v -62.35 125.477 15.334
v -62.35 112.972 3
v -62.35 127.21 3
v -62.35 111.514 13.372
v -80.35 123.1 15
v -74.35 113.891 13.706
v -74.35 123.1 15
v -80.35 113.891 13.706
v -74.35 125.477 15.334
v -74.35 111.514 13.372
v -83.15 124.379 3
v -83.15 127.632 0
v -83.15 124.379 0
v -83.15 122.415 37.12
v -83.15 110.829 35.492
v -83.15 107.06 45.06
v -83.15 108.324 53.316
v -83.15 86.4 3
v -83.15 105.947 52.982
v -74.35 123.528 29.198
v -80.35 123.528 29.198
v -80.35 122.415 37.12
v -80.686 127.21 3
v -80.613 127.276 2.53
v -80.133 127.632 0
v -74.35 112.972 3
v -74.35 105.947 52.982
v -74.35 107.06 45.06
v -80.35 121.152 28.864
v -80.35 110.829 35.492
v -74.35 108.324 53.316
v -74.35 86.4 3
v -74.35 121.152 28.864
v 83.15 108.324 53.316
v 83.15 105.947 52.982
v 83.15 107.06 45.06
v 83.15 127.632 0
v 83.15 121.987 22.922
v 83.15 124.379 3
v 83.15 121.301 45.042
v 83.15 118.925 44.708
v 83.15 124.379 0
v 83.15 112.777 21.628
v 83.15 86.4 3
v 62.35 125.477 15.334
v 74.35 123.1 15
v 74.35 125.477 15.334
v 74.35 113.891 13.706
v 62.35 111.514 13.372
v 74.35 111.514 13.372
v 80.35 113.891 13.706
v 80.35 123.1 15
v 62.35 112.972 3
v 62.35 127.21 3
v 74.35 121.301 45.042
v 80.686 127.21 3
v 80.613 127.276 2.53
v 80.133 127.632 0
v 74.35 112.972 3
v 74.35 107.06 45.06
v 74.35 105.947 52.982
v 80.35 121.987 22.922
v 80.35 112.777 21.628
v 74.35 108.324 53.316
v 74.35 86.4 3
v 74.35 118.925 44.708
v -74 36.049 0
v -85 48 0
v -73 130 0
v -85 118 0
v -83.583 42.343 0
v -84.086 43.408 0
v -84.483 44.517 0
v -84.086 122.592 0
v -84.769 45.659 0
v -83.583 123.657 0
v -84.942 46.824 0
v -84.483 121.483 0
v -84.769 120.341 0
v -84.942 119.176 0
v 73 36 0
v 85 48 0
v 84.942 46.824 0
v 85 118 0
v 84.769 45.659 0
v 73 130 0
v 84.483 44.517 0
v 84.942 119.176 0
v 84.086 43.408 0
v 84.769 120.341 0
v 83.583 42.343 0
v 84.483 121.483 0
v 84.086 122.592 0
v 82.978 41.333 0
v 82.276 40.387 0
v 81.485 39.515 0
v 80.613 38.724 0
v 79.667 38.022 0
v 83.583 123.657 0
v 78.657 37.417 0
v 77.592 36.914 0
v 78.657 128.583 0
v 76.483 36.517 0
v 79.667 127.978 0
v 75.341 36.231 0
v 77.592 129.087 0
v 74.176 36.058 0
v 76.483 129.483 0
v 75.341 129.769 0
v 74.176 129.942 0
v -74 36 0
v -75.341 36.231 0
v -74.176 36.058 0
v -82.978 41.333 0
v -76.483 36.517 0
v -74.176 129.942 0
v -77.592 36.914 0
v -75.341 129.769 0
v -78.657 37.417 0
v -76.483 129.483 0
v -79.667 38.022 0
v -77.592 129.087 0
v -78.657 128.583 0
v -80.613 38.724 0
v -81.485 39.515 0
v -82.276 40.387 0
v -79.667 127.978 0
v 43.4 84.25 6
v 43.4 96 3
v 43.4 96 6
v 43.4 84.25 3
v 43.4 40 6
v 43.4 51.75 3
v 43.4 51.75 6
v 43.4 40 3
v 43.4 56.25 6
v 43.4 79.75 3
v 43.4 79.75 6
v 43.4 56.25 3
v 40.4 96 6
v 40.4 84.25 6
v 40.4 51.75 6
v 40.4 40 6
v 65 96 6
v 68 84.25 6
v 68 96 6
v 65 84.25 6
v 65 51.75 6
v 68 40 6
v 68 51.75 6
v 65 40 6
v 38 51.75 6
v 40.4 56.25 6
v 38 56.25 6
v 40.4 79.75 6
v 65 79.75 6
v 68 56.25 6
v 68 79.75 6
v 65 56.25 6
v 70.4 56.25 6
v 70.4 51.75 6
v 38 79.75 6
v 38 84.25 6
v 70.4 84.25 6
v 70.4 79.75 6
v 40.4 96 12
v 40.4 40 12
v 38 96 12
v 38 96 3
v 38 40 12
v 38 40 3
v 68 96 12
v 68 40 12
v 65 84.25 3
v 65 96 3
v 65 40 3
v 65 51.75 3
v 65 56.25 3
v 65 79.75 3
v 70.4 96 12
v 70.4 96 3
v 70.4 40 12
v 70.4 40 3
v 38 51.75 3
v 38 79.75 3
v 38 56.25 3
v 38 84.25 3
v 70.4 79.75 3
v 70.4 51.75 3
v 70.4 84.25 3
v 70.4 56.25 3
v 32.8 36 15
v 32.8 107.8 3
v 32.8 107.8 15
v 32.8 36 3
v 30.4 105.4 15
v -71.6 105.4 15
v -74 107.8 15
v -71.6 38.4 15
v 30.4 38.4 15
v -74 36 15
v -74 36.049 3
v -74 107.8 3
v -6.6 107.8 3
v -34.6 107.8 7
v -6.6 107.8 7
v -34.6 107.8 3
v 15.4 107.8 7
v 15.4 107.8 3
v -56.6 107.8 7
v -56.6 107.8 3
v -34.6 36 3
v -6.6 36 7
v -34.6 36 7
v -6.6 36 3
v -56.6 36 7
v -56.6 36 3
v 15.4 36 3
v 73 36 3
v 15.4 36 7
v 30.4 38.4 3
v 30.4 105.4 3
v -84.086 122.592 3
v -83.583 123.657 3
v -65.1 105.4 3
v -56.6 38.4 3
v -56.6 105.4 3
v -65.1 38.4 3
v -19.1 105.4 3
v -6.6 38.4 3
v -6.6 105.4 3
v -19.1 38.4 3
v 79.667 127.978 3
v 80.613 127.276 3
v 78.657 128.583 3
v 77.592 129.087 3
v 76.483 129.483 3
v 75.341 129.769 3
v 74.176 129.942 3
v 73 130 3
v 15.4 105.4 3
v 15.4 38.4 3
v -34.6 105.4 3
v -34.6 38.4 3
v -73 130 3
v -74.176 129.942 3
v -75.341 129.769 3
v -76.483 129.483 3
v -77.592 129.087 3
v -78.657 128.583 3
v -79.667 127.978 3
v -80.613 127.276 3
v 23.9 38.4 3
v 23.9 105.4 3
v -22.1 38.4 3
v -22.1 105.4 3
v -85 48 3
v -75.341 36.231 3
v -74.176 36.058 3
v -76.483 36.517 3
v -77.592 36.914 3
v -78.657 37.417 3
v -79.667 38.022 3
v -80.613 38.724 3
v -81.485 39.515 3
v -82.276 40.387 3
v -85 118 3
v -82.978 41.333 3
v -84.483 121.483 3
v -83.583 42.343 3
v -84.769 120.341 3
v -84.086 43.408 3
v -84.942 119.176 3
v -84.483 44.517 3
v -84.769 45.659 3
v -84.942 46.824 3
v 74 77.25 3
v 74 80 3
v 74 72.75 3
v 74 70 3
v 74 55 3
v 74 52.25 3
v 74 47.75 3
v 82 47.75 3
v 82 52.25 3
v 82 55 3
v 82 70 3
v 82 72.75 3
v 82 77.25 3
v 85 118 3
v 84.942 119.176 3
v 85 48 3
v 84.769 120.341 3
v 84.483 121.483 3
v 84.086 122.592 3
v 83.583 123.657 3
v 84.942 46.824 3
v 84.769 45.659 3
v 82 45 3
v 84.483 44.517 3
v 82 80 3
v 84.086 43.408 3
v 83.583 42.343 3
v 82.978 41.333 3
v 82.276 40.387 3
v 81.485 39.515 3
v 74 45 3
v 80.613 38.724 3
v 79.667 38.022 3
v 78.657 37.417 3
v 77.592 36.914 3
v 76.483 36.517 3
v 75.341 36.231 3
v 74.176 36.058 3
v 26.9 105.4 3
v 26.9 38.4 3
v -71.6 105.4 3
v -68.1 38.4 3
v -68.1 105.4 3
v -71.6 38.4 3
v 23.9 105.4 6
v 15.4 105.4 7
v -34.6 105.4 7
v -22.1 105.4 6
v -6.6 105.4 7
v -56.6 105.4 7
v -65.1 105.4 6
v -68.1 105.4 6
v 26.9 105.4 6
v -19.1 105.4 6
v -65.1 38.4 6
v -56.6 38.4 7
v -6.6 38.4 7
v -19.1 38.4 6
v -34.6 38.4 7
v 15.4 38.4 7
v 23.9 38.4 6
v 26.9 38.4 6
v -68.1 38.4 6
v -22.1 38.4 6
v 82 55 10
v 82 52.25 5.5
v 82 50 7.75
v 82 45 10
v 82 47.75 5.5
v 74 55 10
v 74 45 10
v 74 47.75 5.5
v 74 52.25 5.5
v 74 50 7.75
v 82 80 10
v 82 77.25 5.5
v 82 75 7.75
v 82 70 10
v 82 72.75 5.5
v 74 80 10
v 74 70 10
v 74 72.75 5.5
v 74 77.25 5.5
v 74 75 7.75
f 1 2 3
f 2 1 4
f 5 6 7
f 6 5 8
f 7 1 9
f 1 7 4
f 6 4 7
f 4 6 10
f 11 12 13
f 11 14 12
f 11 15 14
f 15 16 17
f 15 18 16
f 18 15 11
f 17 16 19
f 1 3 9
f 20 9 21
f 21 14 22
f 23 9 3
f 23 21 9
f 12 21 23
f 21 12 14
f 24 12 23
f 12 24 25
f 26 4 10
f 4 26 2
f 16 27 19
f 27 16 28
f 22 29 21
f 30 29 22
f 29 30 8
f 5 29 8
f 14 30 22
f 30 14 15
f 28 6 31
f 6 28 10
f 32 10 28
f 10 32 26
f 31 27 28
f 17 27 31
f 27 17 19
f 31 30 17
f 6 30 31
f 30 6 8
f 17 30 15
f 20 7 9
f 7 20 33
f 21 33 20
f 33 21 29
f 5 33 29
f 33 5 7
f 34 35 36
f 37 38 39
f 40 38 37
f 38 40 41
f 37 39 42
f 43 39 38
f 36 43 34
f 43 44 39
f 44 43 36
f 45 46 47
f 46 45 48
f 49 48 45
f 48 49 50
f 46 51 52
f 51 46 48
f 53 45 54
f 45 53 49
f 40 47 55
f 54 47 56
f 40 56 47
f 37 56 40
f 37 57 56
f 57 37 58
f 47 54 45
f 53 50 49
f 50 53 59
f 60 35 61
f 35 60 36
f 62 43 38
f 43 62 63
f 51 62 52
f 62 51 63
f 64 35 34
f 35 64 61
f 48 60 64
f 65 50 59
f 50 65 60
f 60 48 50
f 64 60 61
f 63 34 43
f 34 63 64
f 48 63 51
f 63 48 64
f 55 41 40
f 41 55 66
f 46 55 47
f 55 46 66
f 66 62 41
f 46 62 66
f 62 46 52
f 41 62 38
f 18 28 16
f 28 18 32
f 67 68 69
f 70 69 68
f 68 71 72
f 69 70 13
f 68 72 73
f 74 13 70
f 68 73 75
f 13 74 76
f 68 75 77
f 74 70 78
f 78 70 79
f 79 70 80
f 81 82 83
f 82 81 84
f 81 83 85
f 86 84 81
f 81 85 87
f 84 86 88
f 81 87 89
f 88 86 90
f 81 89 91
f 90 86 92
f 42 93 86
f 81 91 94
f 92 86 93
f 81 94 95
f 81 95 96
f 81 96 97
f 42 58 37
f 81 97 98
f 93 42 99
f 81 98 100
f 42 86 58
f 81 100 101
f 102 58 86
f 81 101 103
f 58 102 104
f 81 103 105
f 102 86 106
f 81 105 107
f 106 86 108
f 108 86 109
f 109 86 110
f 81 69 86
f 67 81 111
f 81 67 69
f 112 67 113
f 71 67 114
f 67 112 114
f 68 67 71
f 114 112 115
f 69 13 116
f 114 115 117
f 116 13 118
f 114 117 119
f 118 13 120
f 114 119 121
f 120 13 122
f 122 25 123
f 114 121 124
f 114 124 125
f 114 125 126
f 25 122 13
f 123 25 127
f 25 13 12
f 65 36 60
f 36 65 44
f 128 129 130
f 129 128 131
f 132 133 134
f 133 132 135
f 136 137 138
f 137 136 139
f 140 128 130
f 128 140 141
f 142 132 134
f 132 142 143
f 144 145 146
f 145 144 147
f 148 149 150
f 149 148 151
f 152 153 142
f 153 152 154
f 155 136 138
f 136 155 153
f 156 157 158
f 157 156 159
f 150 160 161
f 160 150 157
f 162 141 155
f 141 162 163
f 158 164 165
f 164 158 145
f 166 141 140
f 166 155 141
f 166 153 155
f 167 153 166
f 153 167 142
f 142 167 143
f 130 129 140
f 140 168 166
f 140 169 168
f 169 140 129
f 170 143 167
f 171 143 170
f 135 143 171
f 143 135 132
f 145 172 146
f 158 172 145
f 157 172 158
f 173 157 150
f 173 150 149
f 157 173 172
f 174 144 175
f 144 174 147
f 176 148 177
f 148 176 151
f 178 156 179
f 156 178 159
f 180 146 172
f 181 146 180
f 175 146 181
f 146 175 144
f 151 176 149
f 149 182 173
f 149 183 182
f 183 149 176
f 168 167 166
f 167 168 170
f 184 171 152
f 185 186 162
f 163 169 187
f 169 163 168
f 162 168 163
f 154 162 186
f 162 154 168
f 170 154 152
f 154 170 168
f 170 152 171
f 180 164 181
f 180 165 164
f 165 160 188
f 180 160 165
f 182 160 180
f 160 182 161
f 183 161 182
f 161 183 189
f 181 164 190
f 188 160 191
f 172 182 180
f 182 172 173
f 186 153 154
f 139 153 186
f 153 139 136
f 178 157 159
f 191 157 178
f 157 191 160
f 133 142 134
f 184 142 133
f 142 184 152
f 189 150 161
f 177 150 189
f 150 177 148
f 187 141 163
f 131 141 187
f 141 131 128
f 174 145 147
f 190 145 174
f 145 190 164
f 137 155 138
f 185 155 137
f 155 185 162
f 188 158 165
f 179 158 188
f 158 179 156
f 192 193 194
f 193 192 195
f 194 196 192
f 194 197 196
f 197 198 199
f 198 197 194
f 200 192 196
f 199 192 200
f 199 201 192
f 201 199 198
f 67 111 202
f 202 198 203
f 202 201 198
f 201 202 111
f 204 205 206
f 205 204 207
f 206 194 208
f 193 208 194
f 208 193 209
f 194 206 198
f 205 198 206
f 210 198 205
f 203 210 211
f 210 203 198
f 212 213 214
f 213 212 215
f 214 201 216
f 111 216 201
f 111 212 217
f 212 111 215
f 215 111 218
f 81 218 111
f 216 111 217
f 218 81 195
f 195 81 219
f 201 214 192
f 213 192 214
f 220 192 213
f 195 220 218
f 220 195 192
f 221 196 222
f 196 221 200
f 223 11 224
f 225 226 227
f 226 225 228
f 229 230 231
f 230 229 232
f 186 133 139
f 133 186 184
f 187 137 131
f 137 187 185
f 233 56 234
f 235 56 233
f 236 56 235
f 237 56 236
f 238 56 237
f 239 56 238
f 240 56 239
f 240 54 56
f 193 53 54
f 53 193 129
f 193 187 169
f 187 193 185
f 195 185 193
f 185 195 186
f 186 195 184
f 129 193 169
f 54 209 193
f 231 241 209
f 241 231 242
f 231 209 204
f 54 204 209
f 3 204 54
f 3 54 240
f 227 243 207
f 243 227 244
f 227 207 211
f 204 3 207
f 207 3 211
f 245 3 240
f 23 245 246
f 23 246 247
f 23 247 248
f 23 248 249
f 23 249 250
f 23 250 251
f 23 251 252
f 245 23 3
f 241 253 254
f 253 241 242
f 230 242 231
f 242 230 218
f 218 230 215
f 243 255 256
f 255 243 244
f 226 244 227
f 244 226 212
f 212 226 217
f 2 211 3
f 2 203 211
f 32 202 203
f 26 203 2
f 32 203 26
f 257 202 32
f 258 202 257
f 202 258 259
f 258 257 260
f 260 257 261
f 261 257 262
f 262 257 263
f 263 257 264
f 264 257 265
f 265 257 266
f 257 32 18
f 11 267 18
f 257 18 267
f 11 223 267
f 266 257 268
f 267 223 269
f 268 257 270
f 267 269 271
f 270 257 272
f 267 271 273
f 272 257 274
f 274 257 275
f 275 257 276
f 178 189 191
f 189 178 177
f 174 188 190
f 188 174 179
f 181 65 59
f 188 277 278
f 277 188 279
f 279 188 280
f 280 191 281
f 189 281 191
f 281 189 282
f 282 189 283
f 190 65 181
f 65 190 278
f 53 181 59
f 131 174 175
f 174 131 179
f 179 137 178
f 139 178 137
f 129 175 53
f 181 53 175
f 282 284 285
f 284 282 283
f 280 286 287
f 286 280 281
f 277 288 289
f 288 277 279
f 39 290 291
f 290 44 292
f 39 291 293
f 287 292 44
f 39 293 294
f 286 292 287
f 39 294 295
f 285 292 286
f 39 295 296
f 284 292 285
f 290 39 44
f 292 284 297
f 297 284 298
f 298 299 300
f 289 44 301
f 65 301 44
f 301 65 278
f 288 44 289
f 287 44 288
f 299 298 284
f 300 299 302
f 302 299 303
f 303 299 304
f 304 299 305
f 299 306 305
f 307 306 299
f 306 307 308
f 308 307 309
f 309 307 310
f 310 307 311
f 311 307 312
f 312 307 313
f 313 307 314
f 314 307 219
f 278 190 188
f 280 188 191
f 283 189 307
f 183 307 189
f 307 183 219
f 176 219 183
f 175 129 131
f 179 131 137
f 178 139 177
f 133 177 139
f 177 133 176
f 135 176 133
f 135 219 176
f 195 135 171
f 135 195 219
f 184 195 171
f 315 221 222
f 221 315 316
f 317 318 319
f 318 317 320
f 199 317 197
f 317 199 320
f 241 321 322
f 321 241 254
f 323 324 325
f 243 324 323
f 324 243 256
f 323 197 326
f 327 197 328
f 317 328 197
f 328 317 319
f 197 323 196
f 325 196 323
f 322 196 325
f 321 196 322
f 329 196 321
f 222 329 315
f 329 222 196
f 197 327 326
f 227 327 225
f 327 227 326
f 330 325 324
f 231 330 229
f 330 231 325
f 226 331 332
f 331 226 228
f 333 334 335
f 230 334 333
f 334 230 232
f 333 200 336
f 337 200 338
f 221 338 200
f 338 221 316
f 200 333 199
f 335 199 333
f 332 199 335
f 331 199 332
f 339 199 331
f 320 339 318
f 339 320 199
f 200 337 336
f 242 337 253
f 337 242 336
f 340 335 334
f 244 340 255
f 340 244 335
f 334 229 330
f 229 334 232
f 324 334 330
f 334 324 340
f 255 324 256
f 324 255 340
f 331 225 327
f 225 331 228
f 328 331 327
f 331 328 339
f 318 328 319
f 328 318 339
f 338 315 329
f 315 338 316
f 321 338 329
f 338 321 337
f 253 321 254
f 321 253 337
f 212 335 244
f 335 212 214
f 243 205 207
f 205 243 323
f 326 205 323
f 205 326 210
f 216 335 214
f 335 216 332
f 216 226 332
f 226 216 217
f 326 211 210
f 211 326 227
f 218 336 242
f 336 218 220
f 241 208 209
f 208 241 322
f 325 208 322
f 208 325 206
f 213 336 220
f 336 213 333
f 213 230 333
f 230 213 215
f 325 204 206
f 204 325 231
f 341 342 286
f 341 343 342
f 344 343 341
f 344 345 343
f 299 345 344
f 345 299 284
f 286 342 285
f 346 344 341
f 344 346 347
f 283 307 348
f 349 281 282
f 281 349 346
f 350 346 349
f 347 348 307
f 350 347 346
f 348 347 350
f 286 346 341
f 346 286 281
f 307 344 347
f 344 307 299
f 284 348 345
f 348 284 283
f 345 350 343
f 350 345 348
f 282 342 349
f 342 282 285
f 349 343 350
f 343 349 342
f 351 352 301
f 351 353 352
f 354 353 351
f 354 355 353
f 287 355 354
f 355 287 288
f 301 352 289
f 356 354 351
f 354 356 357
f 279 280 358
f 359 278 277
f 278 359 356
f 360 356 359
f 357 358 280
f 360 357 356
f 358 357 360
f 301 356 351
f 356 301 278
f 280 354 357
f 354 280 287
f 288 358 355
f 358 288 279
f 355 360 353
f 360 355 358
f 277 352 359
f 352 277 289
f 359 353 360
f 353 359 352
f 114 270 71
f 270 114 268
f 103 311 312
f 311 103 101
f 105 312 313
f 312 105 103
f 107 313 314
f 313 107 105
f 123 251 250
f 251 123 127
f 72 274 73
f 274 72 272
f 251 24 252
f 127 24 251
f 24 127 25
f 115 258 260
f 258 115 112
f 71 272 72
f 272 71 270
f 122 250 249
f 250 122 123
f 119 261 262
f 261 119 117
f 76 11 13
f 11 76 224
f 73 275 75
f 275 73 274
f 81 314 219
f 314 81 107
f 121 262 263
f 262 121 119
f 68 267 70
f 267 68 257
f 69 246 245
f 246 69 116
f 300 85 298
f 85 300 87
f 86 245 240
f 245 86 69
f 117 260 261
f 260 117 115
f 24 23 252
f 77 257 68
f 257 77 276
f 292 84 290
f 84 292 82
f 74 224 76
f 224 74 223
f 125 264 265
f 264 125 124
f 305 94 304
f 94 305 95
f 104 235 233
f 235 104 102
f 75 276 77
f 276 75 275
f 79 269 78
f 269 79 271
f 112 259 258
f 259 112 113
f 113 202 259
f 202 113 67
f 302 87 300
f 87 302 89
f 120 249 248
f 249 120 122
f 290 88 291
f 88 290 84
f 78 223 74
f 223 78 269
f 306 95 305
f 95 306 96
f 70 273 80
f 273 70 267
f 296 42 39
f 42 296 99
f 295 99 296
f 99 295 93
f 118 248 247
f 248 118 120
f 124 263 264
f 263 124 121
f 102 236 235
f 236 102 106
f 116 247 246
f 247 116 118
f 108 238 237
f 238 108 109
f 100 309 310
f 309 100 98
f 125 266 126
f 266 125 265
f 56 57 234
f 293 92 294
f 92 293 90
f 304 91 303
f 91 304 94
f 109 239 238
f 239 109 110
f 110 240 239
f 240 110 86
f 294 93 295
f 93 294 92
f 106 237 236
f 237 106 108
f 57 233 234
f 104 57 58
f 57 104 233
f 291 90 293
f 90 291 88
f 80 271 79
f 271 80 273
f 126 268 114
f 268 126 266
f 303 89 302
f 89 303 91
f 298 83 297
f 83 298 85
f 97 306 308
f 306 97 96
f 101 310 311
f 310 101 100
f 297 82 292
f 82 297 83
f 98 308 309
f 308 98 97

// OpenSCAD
// =====================================================================
//  Support "coque" pour Roomba 616 : téléphone Galaxy S8+ + carte FT232RL
//  (+ poche optionnelle pour batterie externe)
//
//  Pièce ADD-ON collée sur le dessus du Roomba (VHB ou Velcro), devant
//  le bouton CLEAN, sans déborder sur le pare-chocs.
//
//  Repère : origine = CENTRE du Roomba (bouton CLEAN), Z vers le haut,
//           +Y = AVANT du robot (sens de marche), +X = droite (vu de derrière).
//  Impression : base à plat sur le plateau, sans support.
//
//  Rendu :   part = "mount"    -> pièce imprimable seule (pour l'export STL)
//            part = "assembly" -> pièce + fantômes (téléphone, carte, batterie)
// =====================================================================

part = "mount";            // "mount" | "assembly"

/* ---------------- Roomba 616 ---------------- */
roomba_d          = 340;   // diamètre du robot
roomba_h          = 92;    // hauteur (pour la vue d'ensemble uniquement)
roomba_usable_r   = 155;   // rayon de la zone plate utilisable (sans le pare-chocs)
clean_keepout_r   = 32;    // zone à garder libre autour du bouton CLEAN (centré)

/* ---------------- Base ---------------- */
base_t            = 3;     // épaisseur de la semelle
base_w            = 170;   // largeur (X) avant découpe par le cercle utile
base_y0           = 36;    // bord arrière de la base (distance au centre du robot)
base_depth        = 94;    // profondeur (Y) -> bord avant à base_y0+base_depth
base_corner_r     = 12;    // rayon des coins

/* ---------------- Téléphone (Galaxy S8+) ---------------- */
phone_l           = 159.5; // longueur (horizontale, paysage)
phone_w           = 73.4;  // largeur (verticale, paysage)
phone_t           = 8.1;   // épaisseur
case_extra        = 0;     // surépaisseur de coque, PAR CÔTÉ (0 = sans coque, ex. 1.0)
phone_clear       = 0.6;   // jeu par côté
tilt_deg          = 8;     // inclinaison : caméra vers le BAS (haut du tél. penché vers l'arrière)
phone_lift        = 12;    // hauteur du bord inférieur du tél. au-dessus de la base
camera_side       = -1;    // -1 : caméra côté gauche (vu de derrière), +1 : côté droit
                           //      (le port USB-C est à l'autre extrémité)
front_margin      = 4.5;   // recul de la face avant (dos du tél.) par rapport au bord avant

/* ---------------- Berceau (2 montants d'extrémité) ---------------- */
lip_t             = 2.4;   // épaisseur des lèvres avant/arrière
lip_w             = 6;     // largeur des lèvres (recouvrement du bord du tél.)
end_t             = 2.8;   // épaisseur des butées d'extrémité
ledge_len         = 18;    // longueur des appuis bas à chaque extrémité (évite les boutons)
rear_lip_h        = 40;    // hauteur lèvre côté écran (le tél. s'y appuie)
front_lip_h       = 30;    // hauteur lèvre côté dos, extrémité USB
front_lip_h_cam   = 14;    // hauteur lèvre côté dos, extrémité CAMÉRA (doit rester sous l'objectif)
end_h_cam         = 22;    // hauteur butée extrémité caméra
end_h_usb         = 8;     // hauteur butée extrémité USB (laisse libre la prise USB-C)
buttress_len      = 25;    // longueur des contreforts arrière
buttress_h        = 32;    // hauteur des contreforts

/* ---------------- Carte FT232RL (SEENGREAT SG-232-01C) ---------------- */
ft_l              = 52;    // longueur PCB (à MESURER)
ft_w              = 26;    // largeur PCB (à MESURER)
ft_t              = 1.6;   // épaisseur PCB
ft_comp_h         = 10;    // hauteur max des composants
ft_header_len     = 12;    // dépassement du connecteur 6 broches
ft_clear          = 0.8;   // jeu par côté
tray_wall_t       = 2.4;
tray_wall_h       = 9;     // hauteur des parois au-dessus de la base
tray_rail_h       = 3;     // rails sous la carte (passage du collier + soudures)
tray_x0           = 38;    // bord gauche extérieur du bac (X)
tray_y0           = 40;    // bord arrière du bac (Y)
tray_len          = 56;    // longueur des parois (ouvert aux deux bouts)
tie_w             = 4.5;   // largeur des fentes pour colliers (colliers 2.5-3.6 mm)

/* ---------------- Batterie externe (optionnelle) ---------------- */
powerbank         = true;
bank_l            = 100;   // X
bank_w            = 65;    // Y
bank_h            = 22;
bank_clear        = 1.0;
bank_wall_t       = 2.4;
bank_wall_h       = 12;    // hauteur des parois au-dessus de la base
bank_x0           = -74;   // bord gauche extérieur de la poche
strap_w           = 22;    // largeur des fentes de sangle (Velcro 20 mm)
strap_h           = 4;     // hauteur des fentes de sangle

/* ---------------- Attaches de câbles ---------------- */
anchor_pos        = [[78, 50], [78, 75]];  // positions [X,Y] des pontets pour colliers

$fn = 64;
eps = 0.01;

// ---------------------------------------------------------------------
// Grandeurs dérivées
// ---------------------------------------------------------------------
base_front  = base_y0 + base_depth;
pc          = phone_clear + case_extra;
L           = phone_l + 2*pc;      // longueur intérieure du berceau
W           = phone_w + 2*pc;
T           = phone_t + 2*pc;      // largeur de la fente
phone_front_y = base_front - front_margin - lip_t;   // face intérieure lèvre avant

bank_in_l   = bank_l + 2*bank_clear;
bank_in_w   = bank_w + 2*bank_clear;
bank_out_l  = bank_in_l + 2*bank_wall_t;
bank_out_w  = bank_in_w + 2*bank_wall_t;

tray_in_w   = ft_w + 2*ft_clear;
tray_out_w  = tray_in_w + 2*tray_wall_t;

// ---------------------------------------------------------------------
// Outils
// ---------------------------------------------------------------------
module box(x0, x1, y0, y1, z0, z1) {
    translate([min(x0,x1), min(y0,y1), min(z0,z1)])
        cube([abs(x1-x0), abs(y1-y0), abs(z1-z0)]);
}

// Repère du téléphone : x le long du tél., y=0 face intérieure de la lèvre
// avant (dos du tél.), y<0 vers l'écran, z=0 dessus des appuis bas.
module phone_frame() {
    translate([0, phone_front_y, base_t + phone_lift])
        rotate([tilt_deg, 0, 0]) children();
}

// Tunnel pour collier, toit en pointe (imprimable sans support), axe X
module tie_tunnel(len, w=tie_w, h=2.5) {
    rotate([90,0,90]) translate([0,0,-len/2])
        linear_extrude(len)
            polygon([[-w/2,0],[w/2,0],[w/2,h],[0,h+w/2],[-w/2,h]]);
}

// Pontet pour collier (câble posé dessus/à côté, collier dans le tunnel)
module tie_anchor() {
    difference() {
        translate([-4, -5, 0]) cube([8, 10, base_t + 7]);
        translate([0, 0, base_t]) tie_tunnel(20);
    }
}

// ---------------------------------------------------------------------
// Base
// ---------------------------------------------------------------------
module base_outline() {
    difference() {
        intersection() {
            translate([0, base_y0 + base_depth/2])
                offset(r=base_corner_r) offset(delta=-base_corner_r)
                    square([base_w, base_depth], center=true);
            circle(r=roomba_usable_r, $fn=256);
        }
        circle(r=clean_keepout_r);
    }
}

module base() { linear_extrude(base_t) base_outline(); }

// ---------------------------------------------------------------------
// Berceau téléphone
// ---------------------------------------------------------------------
module post_local(s) {
    is_cam = (s == camera_side);
    xi = s*(L/2 - lip_w);           // bord intérieur des lèvres
    xe = s*(L/2);                   // extrémité du tél.
    xo = s*(L/2 + end_t);           // extérieur de la butée
    xl = s*(L/2 - ledge_len);       // début de l'appui bas
    down = phone_lift + base_t + 12;
    // appui bas (pied jusqu'au plateau)
    box(xl, xo, -T-lip_t, lip_t, -down, 0);
    // butée d'extrémité
    box(xe, xo, -T-lip_t, lip_t, 0, is_cam ? end_h_cam : end_h_usb);
    // lèvre arrière (côté écran)
    box(xi, xo, -T-lip_t, -T, 0, rear_lip_h);
    // lèvre avant (côté dos / caméra)
    box(xi, xo, 0, lip_t, 0, is_cam ? front_lip_h_cam : front_lip_h);
}

module buttress(s) {
    xi = s*(L/2 - lip_w);
    xo = s*(L/2 + end_t);
    hull() {
        phone_frame() box(xi, xo, -T-lip_t, -T-lip_t+0.5, -phone_lift, buttress_h);
        box(xi, xo, phone_front_y - T - lip_t - buttress_len,
                    phone_front_y - T - lip_t, 0, base_t);
    }
}

module cradle() {
    intersection() {
        union() {
            for (s=[-1,1]) { phone_frame() post_local(s); buttress(s); }
        }
        box(-500, 500, -500, 500, 0, 500);
    }
}

// ---------------------------------------------------------------------
// Bac carte FT232 (ouvert aux deux extrémités, 2 colliers)
// ---------------------------------------------------------------------
module ft_tray() {
    x1 = tray_x0 + tray_out_w;
    difference() {
        union() {
            box(tray_x0, tray_x0 + tray_wall_t, tray_y0, tray_y0 + tray_len, 0, base_t + tray_wall_h);
            box(x1 - tray_wall_t, x1,           tray_y0, tray_y0 + tray_len, 0, base_t + tray_wall_h);
            // rails sous la carte
            for (xr=[tray_x0 + tray_wall_t, x1 - tray_wall_t - 3])
                box(xr, xr+3, tray_y0, tray_y0 + tray_len, 0, base_t + tray_rail_h);
        }
        // fentes de colliers à travers les parois, au ras de la base
        for (f=[0.25, 0.75]) {
            yc = tray_y0 + tray_len*f;
            box(tray_x0 - 1, x1 + 1, yc - tie_w/2, yc + tie_w/2, base_t - eps, base_t + tray_rail_h);
        }
    }
}

// ---------------------------------------------------------------------
// Poche batterie externe (sangles Velcro passant sous la batterie)
// ---------------------------------------------------------------------
module bank_pocket() {
    x1 = bank_x0 + bank_out_l;
    y0 = base_y0;
    y1 = base_y0 + bank_out_w;
    cx = (bank_x0 + x1)/2;
    difference() {
        union() {
            difference() {
                box(bank_x0, x1, y0, y1, 0, base_t + bank_wall_h);
                box(bank_x0 + bank_wall_t, x1 - bank_wall_t,
                    y0 + bank_wall_t, y1 - bank_wall_t, base_t, base_t + bank_wall_h + 1);
            }
            // rails le long de Y (la sangle passe entre eux)
            for (xr=[cx, cx - 46, cx + 46])
                box(xr - 1.5, xr + 1.5, y0 + bank_wall_t - eps, y1 - bank_wall_t + eps, 0, base_t + 3);
        }
        // fentes de sangle dans les parois avant et arrière
        for (xs=[cx - 25, cx + 25])
            box(xs - strap_w/2, xs + strap_w/2, y0 - 1, y1 + 1, base_t - eps, base_t + strap_h);
        // la poche ne doit pas mordre la zone du bouton CLEAN
        translate([0,0,-1]) cylinder(r=clean_keepout_r, h=50);
    }
}

// ---------------------------------------------------------------------
// Assemblage de la pièce imprimable
// ---------------------------------------------------------------------
module mount() {
    union() {
        base();
        cradle();
        ft_tray();
        if (powerbank) bank_pocket();
        for (p = anchor_pos) translate([p[0], p[1], 0]) tie_anchor();
    }
}

// ---------------------------------------------------------------------
// Fantômes (NON imprimés)
// ---------------------------------------------------------------------
module ghosts() {
    // téléphone
    color([0.15, 0.35, 0.9, 0.45]) phone_frame()
        translate([-phone_l/2, -pc - phone_t, pc]) cube([phone_l, phone_t, phone_w]);
    // objectif caméra (sur le dos, côté caméra)
    color([1, 0.1, 0.1, 0.9]) phone_frame()
        translate([camera_side*(phone_l/2 - 12), -pc + 0.5, pc + phone_w/2])
            rotate([-90,0,0]) cylinder(d=10, h=3);
    // prise USB-C (côté opposé)
    color([0.2, 0.2, 0.2, 0.7]) phone_frame()
        translate([-camera_side*(phone_l/2 + pc) - (camera_side > 0 ? 20 : 0), -pc - phone_t/2 - 3.5, pc + phone_w/2 - 6])
            cube([20, 7, 12]);
    // carte FT232
    color([0.1, 0.7, 0.3, 0.6])
        translate([tray_x0 + tray_wall_t + ft_clear, tray_y0 + (tray_len - ft_l)/2, base_t + tray_rail_h]) {
            cube([ft_w, ft_l, ft_t]);
            translate([3, 6, ft_t]) cube([ft_w - 6, ft_l - 14, ft_comp_h - ft_t]);
            translate([ft_w/2 - 8, -ft_header_len, 0]) cube([16, ft_header_len, 2.5]);   // connecteur 6 broches
        }
    // batterie
    if (powerbank) color([0.9, 0.6, 0.1, 0.45])
        translate([bank_x0 + bank_wall_t + bank_clear, base_y0 + bank_wall_t + bank_clear, base_t + 3])
            cube([bank_l, bank_w, bank_h]);
    // Roomba (dessus seulement)
    color([0.5, 0.5, 0.5, 0.25]) translate([0,0,-12]) cylinder(d=roomba_d, h=12, $fn=128);
    color([0.9, 0.9, 0.9, 0.6]) translate([0,0,-0.5]) cylinder(r=25, h=0.5);   // bouton CLEAN
}

if (part == "assembly") { color("Gainsboro") mount(); ghosts(); }
else mount();
